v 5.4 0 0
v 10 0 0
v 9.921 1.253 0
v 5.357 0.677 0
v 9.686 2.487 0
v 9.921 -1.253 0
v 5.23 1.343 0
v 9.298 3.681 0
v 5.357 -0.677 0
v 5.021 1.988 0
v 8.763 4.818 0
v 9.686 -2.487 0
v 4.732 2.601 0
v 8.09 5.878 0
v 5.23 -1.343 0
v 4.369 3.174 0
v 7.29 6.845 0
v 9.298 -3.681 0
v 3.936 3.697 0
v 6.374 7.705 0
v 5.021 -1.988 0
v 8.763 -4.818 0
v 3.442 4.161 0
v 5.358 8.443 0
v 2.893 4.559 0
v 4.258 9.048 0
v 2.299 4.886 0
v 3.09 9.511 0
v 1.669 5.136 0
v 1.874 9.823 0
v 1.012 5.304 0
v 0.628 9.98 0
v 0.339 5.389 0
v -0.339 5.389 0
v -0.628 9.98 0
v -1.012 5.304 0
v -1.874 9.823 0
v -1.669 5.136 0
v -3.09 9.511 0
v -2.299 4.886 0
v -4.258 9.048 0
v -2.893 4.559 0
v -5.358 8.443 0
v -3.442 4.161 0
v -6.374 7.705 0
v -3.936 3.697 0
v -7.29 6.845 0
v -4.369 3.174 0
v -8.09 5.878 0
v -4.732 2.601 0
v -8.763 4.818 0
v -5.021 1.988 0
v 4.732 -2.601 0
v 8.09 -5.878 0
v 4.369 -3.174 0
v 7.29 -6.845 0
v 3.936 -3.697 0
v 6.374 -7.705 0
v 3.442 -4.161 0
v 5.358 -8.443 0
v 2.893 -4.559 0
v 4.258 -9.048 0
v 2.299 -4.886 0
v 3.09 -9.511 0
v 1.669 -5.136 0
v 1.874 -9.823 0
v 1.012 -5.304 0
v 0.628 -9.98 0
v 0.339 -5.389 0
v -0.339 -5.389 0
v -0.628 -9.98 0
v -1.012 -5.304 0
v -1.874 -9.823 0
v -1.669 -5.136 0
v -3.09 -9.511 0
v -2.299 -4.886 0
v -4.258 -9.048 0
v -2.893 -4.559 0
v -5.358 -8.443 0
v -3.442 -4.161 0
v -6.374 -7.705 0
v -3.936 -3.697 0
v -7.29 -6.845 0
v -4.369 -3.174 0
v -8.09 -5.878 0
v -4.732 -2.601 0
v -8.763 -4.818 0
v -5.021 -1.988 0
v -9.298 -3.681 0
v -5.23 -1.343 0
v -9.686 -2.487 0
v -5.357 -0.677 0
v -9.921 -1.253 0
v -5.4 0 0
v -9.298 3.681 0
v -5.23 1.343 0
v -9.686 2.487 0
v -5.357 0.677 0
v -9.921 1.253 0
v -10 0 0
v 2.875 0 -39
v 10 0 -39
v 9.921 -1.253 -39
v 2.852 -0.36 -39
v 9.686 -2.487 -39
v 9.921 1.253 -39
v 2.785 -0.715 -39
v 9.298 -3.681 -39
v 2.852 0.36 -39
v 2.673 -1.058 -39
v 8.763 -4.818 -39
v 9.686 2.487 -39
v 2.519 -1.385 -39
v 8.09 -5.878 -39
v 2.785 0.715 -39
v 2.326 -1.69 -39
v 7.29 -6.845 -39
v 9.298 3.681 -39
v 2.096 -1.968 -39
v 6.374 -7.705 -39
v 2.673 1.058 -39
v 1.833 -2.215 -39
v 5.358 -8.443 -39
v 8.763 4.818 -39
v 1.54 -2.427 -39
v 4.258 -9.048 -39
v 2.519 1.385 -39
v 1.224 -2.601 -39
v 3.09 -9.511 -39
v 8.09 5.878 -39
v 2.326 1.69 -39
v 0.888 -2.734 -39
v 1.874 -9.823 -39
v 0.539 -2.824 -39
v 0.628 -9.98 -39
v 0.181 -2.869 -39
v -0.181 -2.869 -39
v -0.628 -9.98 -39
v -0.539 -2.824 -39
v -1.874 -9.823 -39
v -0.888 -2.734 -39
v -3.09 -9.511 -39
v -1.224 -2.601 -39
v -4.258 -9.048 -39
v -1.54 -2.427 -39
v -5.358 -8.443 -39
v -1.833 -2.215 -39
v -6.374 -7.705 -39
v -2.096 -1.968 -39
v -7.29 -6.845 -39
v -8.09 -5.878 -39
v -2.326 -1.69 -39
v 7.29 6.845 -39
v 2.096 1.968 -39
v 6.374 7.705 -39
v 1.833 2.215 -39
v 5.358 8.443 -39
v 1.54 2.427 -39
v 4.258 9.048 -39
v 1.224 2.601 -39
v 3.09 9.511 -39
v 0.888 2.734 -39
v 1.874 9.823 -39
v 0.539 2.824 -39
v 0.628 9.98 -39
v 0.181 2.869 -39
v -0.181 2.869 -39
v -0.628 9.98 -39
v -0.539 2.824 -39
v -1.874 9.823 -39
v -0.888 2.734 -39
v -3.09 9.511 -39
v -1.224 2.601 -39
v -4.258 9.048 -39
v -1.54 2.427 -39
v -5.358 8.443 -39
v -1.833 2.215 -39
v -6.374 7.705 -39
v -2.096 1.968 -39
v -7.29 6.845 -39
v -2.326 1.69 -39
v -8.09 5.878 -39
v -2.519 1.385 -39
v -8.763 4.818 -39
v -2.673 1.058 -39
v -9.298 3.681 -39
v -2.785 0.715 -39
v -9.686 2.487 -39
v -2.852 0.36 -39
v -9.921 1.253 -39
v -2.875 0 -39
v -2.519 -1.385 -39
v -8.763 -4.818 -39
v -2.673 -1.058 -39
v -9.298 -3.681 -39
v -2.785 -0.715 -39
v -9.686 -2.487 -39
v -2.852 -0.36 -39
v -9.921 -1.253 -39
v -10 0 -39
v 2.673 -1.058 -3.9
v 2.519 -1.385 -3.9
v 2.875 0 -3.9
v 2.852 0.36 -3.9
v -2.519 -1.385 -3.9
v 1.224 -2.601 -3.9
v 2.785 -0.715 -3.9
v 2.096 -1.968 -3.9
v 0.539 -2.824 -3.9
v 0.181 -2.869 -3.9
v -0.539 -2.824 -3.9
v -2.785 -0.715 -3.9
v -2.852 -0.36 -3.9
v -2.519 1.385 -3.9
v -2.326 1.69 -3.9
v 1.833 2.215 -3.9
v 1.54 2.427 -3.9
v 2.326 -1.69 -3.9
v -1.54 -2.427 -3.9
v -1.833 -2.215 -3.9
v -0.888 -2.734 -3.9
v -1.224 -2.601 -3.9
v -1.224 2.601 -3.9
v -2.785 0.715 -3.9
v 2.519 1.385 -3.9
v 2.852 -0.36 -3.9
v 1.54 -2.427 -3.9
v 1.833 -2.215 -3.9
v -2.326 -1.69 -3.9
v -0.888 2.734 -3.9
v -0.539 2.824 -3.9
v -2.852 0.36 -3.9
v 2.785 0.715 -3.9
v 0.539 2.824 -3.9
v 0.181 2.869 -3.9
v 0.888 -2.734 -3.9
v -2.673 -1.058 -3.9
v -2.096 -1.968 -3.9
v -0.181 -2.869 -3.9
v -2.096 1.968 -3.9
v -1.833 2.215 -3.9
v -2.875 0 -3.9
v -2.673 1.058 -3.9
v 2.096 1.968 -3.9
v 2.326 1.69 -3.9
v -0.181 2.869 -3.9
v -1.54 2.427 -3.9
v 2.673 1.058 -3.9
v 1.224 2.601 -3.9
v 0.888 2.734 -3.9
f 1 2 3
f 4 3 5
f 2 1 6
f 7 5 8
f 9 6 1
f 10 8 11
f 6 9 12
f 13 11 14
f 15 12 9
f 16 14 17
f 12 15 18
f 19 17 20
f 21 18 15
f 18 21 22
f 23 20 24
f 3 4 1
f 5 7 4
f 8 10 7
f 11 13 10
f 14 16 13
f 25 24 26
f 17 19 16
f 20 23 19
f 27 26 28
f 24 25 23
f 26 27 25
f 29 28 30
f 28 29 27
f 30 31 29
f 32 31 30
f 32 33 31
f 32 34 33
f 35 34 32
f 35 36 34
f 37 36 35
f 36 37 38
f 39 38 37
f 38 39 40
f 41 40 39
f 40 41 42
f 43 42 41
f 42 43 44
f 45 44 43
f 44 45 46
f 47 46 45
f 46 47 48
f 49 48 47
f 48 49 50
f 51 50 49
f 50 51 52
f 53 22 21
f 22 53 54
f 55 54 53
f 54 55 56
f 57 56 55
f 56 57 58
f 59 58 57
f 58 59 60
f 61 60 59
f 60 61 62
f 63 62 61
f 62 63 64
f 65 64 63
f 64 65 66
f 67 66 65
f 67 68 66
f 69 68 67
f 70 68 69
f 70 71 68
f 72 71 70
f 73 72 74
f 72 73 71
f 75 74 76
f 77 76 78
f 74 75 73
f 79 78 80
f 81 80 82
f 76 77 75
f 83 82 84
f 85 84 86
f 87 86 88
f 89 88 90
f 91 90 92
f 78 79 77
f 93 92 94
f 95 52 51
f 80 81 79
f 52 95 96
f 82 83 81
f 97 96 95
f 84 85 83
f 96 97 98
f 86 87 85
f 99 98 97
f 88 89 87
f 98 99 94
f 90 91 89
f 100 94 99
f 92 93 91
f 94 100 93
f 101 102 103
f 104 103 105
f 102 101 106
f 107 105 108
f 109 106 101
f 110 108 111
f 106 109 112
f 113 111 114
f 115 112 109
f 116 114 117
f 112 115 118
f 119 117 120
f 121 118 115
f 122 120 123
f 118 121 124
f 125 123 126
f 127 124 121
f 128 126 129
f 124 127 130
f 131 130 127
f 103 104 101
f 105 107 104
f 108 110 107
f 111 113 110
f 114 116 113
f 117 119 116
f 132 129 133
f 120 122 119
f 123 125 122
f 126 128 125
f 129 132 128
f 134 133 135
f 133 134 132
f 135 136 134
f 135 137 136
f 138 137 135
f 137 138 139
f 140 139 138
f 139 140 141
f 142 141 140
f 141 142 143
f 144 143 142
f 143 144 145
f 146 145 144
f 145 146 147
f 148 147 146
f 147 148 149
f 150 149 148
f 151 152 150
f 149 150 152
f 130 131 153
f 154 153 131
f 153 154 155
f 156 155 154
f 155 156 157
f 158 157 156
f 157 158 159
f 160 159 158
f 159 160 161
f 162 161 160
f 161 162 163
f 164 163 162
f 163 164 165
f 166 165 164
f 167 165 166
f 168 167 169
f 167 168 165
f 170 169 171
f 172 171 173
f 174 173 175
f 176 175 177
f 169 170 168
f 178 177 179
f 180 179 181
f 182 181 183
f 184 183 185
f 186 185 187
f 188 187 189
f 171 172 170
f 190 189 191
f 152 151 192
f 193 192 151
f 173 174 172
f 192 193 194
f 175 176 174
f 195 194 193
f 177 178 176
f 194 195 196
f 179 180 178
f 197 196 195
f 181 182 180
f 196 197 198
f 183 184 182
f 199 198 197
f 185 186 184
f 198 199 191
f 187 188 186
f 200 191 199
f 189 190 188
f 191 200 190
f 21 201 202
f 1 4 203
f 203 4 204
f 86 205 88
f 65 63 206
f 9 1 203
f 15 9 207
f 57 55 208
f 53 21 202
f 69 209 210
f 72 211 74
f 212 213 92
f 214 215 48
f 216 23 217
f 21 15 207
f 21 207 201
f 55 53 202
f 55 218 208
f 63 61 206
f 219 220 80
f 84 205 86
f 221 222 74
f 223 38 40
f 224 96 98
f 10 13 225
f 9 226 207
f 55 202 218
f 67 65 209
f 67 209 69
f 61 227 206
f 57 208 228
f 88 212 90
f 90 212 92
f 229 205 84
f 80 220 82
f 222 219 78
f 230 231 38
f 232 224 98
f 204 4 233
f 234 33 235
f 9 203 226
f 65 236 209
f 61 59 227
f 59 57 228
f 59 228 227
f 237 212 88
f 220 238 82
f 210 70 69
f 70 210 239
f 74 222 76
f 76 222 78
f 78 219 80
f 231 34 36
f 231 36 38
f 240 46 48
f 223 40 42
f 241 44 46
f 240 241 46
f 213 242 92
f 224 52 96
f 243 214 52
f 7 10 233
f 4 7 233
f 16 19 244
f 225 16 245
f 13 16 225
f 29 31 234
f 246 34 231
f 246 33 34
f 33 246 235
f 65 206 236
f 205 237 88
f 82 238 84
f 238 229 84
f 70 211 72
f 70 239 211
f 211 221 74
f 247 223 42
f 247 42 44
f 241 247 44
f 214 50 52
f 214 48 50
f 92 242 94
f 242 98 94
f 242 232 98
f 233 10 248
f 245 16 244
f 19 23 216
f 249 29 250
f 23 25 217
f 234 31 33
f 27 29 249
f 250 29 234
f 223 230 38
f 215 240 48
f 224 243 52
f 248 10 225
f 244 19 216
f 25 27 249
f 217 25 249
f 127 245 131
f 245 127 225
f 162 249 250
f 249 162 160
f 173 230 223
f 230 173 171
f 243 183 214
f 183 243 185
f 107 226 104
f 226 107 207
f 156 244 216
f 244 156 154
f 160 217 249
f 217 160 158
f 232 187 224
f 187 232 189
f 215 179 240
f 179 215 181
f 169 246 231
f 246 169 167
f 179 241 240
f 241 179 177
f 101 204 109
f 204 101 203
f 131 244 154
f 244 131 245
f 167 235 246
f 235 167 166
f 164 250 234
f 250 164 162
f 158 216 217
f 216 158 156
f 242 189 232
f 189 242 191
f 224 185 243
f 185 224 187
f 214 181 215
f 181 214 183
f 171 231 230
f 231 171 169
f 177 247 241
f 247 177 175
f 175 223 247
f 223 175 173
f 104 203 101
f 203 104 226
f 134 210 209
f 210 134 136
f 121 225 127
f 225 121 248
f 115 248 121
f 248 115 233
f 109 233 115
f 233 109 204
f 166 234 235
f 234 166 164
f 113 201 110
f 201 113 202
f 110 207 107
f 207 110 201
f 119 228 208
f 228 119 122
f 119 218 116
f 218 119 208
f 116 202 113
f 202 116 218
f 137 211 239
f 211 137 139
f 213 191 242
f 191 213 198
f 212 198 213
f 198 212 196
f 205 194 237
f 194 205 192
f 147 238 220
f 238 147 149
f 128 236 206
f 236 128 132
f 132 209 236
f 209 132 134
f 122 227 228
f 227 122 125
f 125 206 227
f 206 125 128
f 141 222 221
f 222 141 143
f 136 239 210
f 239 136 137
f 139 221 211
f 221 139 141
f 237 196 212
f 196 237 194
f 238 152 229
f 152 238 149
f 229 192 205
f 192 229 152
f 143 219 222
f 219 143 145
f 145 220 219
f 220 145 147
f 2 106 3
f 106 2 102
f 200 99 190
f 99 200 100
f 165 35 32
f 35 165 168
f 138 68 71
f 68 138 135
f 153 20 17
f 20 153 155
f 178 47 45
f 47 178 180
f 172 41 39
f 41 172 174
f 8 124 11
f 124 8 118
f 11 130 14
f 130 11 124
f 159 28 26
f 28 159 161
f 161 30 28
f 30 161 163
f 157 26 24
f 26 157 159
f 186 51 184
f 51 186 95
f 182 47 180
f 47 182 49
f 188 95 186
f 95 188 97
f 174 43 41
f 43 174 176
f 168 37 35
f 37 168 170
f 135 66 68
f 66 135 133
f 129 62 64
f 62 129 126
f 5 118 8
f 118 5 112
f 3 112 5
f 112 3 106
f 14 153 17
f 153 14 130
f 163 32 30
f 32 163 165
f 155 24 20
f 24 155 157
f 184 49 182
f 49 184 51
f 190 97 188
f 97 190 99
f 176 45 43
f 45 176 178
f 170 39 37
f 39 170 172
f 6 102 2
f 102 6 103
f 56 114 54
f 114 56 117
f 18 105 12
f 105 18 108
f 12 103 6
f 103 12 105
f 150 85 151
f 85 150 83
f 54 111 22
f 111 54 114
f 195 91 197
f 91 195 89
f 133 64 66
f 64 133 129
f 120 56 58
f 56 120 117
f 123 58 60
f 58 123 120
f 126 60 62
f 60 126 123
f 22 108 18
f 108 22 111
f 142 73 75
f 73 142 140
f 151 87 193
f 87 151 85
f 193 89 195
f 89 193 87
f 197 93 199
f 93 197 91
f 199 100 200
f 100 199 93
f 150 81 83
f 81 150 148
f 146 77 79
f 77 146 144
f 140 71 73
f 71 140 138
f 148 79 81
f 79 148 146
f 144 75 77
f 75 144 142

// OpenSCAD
$fn = 50;


difference() {
	union() {
		translate(v = [0, 0, -39.0000000000]) {
			cylinder(h = 39, r = 10.0000000000);
		}
	}
	union() {
		translate(v = [0, 0, 0]) {
			rotate(a = [0, 0, 0]) {
				difference() {
					union() {
						#translate(v = [0, 0, -39.0000000000]) {
							cylinder(h = 39, r = 2.6000000000);
						}
						#translate(v = [0, 0, -3.9000000000]) {
							cylinder(h = 3.9000000000, r = 10.0000000000, r1 = 2.8750000000, r2 = 5.4000000000);
						}
						#translate(v = [0, 0, -39.0000000000]) {
							cylinder(h = 39, r = 2.8750000000);
						}
						#translate(v = [0, 0, -39.0000000000]) {
							cylinder(h = 39, r = 2.6000000000);
						}
					}
					union();
				}
			}
		}
	}
}
